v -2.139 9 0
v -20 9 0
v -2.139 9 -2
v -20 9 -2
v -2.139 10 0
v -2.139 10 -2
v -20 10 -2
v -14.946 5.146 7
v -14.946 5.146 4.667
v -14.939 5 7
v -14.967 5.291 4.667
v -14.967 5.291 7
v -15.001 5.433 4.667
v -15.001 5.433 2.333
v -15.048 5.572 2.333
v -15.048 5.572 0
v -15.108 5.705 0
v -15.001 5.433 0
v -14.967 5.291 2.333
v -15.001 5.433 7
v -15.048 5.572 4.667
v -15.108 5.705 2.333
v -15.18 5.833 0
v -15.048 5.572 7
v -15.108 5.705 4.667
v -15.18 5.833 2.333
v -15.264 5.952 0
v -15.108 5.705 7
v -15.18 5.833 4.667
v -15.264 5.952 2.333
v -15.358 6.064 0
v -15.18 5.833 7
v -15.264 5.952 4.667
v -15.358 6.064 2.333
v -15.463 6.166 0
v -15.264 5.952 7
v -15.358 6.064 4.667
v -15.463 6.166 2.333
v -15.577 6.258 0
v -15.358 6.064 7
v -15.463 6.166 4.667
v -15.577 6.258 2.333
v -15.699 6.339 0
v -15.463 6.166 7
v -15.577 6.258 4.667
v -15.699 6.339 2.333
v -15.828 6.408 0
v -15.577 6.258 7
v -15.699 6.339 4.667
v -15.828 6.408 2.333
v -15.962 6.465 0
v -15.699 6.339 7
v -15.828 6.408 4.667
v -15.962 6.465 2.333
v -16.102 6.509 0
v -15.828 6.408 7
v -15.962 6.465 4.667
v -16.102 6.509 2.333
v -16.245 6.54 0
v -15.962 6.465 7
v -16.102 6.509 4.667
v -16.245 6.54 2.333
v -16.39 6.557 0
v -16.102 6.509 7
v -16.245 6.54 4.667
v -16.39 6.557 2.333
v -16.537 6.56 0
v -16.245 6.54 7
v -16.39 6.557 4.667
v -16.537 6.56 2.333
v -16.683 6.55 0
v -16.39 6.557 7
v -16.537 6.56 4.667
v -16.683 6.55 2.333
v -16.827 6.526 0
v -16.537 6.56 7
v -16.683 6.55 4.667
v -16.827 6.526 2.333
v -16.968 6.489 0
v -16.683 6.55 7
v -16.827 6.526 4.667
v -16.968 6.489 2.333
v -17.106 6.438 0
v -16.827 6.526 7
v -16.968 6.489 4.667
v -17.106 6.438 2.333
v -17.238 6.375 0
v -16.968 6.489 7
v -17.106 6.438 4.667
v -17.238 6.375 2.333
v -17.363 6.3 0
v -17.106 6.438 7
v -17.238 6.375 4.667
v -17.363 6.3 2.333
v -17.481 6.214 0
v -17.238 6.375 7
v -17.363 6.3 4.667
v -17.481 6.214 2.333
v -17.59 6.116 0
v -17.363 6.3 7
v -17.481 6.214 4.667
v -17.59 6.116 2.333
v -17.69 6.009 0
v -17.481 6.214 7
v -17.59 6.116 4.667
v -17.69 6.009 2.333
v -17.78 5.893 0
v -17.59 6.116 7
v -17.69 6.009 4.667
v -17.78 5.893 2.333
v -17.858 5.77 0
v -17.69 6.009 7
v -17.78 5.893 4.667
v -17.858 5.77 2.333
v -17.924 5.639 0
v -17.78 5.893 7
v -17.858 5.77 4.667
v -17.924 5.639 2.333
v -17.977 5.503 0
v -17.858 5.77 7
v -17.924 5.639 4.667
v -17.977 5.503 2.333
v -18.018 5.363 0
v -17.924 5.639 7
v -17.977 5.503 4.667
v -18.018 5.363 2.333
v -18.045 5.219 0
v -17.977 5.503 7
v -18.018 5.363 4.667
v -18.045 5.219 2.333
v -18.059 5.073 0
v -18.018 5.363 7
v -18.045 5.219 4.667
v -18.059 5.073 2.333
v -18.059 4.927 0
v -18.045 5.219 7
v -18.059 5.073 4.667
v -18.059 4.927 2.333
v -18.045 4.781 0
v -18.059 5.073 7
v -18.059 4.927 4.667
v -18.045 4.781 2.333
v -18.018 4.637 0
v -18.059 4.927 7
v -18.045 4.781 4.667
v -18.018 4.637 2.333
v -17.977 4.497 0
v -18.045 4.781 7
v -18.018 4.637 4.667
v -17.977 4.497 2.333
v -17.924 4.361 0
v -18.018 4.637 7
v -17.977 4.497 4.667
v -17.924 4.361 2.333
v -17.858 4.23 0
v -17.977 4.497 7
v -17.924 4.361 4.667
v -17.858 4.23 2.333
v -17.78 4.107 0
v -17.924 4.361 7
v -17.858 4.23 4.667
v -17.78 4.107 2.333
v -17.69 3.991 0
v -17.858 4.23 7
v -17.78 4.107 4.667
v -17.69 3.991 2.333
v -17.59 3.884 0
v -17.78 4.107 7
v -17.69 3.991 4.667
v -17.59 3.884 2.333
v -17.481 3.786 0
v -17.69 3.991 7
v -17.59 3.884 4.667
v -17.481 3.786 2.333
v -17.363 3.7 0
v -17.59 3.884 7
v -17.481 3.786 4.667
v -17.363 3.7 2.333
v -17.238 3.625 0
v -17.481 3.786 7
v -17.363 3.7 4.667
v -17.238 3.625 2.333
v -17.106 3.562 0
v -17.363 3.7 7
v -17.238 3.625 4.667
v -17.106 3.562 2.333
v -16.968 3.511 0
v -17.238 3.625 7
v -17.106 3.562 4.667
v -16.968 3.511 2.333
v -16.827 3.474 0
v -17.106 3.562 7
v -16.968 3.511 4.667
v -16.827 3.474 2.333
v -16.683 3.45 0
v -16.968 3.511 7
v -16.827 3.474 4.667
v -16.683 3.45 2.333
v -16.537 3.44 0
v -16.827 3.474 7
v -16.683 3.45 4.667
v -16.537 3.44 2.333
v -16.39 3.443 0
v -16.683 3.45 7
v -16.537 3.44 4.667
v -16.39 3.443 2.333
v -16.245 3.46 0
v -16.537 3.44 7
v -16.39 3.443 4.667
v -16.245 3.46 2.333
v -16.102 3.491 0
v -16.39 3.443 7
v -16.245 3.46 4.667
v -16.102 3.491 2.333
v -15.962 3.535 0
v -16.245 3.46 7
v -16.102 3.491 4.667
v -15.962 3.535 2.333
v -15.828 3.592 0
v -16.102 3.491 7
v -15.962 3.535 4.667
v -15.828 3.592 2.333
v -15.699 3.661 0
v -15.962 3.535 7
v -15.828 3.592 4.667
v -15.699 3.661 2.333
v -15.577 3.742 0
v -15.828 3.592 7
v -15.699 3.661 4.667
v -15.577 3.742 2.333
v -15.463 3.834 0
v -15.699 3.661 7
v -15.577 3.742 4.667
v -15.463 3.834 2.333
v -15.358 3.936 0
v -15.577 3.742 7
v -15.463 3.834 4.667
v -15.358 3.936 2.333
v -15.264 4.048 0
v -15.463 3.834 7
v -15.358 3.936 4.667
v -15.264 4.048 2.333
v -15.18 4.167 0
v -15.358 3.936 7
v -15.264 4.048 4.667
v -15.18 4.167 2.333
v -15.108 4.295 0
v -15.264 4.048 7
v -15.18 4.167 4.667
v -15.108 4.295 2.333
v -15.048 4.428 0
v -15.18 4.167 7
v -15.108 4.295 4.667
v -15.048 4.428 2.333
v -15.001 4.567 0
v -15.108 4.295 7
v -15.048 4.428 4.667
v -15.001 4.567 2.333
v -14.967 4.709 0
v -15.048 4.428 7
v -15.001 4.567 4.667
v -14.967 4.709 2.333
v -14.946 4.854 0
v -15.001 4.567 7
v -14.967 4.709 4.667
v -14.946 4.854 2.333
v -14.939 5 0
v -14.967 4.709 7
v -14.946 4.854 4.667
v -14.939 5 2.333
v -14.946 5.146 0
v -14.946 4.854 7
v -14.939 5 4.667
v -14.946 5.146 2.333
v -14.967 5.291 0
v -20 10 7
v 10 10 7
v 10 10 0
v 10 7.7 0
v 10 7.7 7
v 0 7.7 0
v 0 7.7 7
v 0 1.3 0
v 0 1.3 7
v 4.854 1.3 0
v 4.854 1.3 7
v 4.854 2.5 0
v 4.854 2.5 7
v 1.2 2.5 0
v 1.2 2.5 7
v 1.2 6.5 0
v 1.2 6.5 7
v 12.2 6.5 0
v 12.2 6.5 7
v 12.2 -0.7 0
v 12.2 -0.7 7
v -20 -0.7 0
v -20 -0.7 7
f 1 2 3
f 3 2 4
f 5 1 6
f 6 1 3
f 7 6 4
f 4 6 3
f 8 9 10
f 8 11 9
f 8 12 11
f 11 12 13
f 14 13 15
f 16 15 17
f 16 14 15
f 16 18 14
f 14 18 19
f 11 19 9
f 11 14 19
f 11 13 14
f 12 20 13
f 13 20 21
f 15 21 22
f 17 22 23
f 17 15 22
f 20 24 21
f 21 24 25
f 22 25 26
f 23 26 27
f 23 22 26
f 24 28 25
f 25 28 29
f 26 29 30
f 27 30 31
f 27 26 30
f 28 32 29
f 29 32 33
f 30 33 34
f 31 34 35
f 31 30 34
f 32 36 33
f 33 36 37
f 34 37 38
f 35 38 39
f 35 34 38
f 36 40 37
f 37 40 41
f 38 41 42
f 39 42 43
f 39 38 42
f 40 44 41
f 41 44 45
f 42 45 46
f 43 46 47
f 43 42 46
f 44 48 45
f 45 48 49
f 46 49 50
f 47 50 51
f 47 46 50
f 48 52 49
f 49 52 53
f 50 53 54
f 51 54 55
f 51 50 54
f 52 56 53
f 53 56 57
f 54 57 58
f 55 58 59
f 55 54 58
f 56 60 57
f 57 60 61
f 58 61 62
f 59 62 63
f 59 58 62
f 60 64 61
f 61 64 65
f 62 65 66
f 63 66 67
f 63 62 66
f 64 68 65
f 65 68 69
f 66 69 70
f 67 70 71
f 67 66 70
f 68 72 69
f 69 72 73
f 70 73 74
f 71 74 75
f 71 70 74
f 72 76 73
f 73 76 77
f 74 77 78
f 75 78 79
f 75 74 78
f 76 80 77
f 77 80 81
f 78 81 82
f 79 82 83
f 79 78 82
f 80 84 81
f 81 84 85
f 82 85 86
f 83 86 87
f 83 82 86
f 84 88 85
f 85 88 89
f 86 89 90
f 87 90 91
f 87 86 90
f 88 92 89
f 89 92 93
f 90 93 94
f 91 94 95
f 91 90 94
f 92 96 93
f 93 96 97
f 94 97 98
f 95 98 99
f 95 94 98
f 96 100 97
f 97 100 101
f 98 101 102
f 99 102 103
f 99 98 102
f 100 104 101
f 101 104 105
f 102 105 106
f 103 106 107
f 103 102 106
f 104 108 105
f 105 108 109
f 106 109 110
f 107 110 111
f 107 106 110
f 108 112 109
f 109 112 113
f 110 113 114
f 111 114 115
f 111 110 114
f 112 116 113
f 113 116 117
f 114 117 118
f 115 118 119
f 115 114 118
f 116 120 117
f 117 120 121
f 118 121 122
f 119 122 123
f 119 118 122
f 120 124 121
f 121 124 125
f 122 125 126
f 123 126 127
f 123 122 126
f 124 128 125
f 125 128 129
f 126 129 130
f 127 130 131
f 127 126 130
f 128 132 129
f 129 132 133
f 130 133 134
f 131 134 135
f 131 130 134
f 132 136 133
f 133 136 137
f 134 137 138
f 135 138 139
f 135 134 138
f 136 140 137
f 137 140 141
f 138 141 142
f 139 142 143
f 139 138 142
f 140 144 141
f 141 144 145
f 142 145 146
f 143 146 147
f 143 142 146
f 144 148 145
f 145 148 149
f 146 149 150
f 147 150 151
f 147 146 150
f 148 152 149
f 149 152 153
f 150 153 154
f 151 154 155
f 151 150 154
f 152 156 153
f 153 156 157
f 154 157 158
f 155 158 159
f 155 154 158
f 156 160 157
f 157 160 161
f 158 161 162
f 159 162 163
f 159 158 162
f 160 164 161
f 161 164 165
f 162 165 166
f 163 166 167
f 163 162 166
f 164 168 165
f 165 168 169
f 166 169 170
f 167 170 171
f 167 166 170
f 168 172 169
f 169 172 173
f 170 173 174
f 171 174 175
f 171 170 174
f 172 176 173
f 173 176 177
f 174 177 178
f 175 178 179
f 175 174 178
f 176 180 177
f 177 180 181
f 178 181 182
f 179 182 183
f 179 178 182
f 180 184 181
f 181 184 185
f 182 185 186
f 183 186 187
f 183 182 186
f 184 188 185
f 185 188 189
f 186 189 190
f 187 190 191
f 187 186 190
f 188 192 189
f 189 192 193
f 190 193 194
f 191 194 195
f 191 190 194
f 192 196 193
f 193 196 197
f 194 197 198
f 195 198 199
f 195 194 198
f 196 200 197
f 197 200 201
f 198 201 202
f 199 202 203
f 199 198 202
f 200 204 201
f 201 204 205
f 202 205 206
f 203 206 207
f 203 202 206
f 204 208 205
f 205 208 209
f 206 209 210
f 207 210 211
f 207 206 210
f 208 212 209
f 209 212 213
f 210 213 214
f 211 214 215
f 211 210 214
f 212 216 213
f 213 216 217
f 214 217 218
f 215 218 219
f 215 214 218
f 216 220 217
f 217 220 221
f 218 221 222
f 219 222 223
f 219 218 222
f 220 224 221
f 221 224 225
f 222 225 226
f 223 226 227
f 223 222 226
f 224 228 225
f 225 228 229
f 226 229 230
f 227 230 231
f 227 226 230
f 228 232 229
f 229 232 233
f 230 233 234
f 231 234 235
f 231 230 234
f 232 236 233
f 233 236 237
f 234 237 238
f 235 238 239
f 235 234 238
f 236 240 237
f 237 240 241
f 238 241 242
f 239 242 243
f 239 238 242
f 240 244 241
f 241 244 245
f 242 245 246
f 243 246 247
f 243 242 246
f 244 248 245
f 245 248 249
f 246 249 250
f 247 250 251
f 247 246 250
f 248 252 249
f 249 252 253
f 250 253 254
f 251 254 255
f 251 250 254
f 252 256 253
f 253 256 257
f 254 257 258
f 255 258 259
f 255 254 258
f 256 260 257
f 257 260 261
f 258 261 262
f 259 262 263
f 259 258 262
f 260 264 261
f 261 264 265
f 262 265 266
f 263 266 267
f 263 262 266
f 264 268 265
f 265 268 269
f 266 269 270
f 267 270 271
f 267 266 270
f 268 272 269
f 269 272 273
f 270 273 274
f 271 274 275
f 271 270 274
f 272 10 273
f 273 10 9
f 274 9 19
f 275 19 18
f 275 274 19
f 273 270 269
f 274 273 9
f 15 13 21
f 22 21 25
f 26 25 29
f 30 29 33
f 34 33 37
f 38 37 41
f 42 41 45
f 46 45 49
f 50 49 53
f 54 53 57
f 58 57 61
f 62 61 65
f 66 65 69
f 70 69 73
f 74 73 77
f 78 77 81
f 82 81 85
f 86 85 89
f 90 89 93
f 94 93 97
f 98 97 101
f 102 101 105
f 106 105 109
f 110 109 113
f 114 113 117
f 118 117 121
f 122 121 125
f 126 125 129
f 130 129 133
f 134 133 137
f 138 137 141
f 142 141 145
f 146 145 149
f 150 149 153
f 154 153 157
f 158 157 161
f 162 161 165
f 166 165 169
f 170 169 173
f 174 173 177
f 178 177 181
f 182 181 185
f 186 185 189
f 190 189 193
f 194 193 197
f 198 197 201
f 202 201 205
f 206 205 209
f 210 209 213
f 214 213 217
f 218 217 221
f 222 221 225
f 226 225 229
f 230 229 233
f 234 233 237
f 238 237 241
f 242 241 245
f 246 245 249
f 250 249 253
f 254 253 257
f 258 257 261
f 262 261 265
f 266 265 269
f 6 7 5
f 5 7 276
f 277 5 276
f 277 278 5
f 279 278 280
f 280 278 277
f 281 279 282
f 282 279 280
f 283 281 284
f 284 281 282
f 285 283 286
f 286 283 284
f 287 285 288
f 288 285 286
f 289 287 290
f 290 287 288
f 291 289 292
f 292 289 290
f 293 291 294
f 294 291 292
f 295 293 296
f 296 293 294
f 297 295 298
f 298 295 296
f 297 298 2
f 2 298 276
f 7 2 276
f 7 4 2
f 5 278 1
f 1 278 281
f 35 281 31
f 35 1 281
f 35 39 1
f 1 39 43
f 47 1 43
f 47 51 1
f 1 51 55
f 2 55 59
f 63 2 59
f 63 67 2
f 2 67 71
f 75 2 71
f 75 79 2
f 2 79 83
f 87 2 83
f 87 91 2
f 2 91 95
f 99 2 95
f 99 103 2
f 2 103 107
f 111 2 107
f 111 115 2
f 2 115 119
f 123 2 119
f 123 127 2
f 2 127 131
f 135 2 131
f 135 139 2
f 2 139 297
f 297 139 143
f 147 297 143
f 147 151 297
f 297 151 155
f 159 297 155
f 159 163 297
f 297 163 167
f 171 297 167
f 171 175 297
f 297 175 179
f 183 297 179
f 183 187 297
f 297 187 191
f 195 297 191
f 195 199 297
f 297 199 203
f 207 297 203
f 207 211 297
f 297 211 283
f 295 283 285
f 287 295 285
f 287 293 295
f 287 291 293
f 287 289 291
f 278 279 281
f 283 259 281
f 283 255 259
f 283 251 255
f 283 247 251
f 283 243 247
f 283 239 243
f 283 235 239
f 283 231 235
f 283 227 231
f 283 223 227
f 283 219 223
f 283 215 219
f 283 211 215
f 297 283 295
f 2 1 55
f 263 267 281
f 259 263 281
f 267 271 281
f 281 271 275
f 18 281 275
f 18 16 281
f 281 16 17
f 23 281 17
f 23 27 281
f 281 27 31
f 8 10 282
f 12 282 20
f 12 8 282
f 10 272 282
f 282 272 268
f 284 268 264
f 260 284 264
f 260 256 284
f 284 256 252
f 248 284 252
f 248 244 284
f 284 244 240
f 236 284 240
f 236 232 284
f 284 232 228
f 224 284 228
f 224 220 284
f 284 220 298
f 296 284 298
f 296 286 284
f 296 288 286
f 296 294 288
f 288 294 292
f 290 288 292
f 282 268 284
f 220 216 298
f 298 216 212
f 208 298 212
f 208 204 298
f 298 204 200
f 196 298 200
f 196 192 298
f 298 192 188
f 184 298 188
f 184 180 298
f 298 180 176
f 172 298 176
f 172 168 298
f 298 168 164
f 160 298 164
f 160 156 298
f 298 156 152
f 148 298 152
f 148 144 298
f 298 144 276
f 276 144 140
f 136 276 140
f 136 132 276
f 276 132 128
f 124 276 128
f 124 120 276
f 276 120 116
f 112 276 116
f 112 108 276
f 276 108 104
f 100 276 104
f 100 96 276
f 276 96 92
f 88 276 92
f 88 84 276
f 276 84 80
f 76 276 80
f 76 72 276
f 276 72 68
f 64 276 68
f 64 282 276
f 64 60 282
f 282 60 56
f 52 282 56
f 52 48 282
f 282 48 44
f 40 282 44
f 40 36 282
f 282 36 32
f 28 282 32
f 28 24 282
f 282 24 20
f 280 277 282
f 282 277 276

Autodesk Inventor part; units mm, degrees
ref_plane "YZ Plane" through (0, 0, 0) normal (1, 0, 0) x (0, 1, 0)
ref_plane "XZ Plane" through (0, 0, 0) normal (0, 1, 0) x (-1, 0, 0)
ref_plane "XY Plane" through (0, 0, 0) normal (0, 0, 1) x (1, 0, 0)
sketch "Sketch1" plane through (0, 0, 0) normal (0, 0, 1) x (1, 0, 0)
  line L0 (-20, -0.7) -> (-20, 10)
  line L1 (0, 7.7) -> (0, 1.3)
  circle A0 centre (-16.5, 5) radius 1.5606
  line L2 (1.2, 6.5) -> (12.2, 6.5)
  line L3 (1.2, 2.5) -> (4.8537, 2.5)
  line L4 (1.2, 6.5) -> (1.2, 2.5)
  line L5 (0, 1.3) -> (4.8537, 1.3)
  line L6 (4.8537, 2.5) -> (4.8537, 1.3)
  line L7 (12.2, -0.7) -> (12.2, 6.5)
  line L8 (0, 7.7) -> (10, 7.7)
  line L9 (10, 7.7) -> (10, 10)
  line L10 (-20, -0.7) -> (12.2, -0.7)
  line L11 (-20, 10) -> (10, 10)
  dimension "d0" = 16.5
  dimension "d7" = 1.2
  dimension "d9" = 1.2
  dimension "d10" = 11
  dimension "d12" = 1.2
  dimension "d13" = 4
  dimension "d14" = 2
  dimension "d17" = 5
extrude "Extrusion1" add sketch "Sketch1" along normal blind 7
sketch "Sketch2" plane through (0, 0, 0) normal (0, 0, -1) x (-1, 0, 0)
  line L0 (20, 10) -> (2.1389, 10)
  line L1 (2.1389, 10) -> (2.1389, 9)
  line L2 (2.1389, 9) -> (20, 9)
  line L3 (20, 9) -> (20, 10)
  line L4 (20, 10) -> (-10, 10) projected
  line L5 (20, -0.7) -> (20, 10) projected
  point P0 (0, 0)
  dimension "d18" = 1
extrude "Extrusion2" add sketch "Sketch2" along normal blind 2
properties part number "opto mount"
